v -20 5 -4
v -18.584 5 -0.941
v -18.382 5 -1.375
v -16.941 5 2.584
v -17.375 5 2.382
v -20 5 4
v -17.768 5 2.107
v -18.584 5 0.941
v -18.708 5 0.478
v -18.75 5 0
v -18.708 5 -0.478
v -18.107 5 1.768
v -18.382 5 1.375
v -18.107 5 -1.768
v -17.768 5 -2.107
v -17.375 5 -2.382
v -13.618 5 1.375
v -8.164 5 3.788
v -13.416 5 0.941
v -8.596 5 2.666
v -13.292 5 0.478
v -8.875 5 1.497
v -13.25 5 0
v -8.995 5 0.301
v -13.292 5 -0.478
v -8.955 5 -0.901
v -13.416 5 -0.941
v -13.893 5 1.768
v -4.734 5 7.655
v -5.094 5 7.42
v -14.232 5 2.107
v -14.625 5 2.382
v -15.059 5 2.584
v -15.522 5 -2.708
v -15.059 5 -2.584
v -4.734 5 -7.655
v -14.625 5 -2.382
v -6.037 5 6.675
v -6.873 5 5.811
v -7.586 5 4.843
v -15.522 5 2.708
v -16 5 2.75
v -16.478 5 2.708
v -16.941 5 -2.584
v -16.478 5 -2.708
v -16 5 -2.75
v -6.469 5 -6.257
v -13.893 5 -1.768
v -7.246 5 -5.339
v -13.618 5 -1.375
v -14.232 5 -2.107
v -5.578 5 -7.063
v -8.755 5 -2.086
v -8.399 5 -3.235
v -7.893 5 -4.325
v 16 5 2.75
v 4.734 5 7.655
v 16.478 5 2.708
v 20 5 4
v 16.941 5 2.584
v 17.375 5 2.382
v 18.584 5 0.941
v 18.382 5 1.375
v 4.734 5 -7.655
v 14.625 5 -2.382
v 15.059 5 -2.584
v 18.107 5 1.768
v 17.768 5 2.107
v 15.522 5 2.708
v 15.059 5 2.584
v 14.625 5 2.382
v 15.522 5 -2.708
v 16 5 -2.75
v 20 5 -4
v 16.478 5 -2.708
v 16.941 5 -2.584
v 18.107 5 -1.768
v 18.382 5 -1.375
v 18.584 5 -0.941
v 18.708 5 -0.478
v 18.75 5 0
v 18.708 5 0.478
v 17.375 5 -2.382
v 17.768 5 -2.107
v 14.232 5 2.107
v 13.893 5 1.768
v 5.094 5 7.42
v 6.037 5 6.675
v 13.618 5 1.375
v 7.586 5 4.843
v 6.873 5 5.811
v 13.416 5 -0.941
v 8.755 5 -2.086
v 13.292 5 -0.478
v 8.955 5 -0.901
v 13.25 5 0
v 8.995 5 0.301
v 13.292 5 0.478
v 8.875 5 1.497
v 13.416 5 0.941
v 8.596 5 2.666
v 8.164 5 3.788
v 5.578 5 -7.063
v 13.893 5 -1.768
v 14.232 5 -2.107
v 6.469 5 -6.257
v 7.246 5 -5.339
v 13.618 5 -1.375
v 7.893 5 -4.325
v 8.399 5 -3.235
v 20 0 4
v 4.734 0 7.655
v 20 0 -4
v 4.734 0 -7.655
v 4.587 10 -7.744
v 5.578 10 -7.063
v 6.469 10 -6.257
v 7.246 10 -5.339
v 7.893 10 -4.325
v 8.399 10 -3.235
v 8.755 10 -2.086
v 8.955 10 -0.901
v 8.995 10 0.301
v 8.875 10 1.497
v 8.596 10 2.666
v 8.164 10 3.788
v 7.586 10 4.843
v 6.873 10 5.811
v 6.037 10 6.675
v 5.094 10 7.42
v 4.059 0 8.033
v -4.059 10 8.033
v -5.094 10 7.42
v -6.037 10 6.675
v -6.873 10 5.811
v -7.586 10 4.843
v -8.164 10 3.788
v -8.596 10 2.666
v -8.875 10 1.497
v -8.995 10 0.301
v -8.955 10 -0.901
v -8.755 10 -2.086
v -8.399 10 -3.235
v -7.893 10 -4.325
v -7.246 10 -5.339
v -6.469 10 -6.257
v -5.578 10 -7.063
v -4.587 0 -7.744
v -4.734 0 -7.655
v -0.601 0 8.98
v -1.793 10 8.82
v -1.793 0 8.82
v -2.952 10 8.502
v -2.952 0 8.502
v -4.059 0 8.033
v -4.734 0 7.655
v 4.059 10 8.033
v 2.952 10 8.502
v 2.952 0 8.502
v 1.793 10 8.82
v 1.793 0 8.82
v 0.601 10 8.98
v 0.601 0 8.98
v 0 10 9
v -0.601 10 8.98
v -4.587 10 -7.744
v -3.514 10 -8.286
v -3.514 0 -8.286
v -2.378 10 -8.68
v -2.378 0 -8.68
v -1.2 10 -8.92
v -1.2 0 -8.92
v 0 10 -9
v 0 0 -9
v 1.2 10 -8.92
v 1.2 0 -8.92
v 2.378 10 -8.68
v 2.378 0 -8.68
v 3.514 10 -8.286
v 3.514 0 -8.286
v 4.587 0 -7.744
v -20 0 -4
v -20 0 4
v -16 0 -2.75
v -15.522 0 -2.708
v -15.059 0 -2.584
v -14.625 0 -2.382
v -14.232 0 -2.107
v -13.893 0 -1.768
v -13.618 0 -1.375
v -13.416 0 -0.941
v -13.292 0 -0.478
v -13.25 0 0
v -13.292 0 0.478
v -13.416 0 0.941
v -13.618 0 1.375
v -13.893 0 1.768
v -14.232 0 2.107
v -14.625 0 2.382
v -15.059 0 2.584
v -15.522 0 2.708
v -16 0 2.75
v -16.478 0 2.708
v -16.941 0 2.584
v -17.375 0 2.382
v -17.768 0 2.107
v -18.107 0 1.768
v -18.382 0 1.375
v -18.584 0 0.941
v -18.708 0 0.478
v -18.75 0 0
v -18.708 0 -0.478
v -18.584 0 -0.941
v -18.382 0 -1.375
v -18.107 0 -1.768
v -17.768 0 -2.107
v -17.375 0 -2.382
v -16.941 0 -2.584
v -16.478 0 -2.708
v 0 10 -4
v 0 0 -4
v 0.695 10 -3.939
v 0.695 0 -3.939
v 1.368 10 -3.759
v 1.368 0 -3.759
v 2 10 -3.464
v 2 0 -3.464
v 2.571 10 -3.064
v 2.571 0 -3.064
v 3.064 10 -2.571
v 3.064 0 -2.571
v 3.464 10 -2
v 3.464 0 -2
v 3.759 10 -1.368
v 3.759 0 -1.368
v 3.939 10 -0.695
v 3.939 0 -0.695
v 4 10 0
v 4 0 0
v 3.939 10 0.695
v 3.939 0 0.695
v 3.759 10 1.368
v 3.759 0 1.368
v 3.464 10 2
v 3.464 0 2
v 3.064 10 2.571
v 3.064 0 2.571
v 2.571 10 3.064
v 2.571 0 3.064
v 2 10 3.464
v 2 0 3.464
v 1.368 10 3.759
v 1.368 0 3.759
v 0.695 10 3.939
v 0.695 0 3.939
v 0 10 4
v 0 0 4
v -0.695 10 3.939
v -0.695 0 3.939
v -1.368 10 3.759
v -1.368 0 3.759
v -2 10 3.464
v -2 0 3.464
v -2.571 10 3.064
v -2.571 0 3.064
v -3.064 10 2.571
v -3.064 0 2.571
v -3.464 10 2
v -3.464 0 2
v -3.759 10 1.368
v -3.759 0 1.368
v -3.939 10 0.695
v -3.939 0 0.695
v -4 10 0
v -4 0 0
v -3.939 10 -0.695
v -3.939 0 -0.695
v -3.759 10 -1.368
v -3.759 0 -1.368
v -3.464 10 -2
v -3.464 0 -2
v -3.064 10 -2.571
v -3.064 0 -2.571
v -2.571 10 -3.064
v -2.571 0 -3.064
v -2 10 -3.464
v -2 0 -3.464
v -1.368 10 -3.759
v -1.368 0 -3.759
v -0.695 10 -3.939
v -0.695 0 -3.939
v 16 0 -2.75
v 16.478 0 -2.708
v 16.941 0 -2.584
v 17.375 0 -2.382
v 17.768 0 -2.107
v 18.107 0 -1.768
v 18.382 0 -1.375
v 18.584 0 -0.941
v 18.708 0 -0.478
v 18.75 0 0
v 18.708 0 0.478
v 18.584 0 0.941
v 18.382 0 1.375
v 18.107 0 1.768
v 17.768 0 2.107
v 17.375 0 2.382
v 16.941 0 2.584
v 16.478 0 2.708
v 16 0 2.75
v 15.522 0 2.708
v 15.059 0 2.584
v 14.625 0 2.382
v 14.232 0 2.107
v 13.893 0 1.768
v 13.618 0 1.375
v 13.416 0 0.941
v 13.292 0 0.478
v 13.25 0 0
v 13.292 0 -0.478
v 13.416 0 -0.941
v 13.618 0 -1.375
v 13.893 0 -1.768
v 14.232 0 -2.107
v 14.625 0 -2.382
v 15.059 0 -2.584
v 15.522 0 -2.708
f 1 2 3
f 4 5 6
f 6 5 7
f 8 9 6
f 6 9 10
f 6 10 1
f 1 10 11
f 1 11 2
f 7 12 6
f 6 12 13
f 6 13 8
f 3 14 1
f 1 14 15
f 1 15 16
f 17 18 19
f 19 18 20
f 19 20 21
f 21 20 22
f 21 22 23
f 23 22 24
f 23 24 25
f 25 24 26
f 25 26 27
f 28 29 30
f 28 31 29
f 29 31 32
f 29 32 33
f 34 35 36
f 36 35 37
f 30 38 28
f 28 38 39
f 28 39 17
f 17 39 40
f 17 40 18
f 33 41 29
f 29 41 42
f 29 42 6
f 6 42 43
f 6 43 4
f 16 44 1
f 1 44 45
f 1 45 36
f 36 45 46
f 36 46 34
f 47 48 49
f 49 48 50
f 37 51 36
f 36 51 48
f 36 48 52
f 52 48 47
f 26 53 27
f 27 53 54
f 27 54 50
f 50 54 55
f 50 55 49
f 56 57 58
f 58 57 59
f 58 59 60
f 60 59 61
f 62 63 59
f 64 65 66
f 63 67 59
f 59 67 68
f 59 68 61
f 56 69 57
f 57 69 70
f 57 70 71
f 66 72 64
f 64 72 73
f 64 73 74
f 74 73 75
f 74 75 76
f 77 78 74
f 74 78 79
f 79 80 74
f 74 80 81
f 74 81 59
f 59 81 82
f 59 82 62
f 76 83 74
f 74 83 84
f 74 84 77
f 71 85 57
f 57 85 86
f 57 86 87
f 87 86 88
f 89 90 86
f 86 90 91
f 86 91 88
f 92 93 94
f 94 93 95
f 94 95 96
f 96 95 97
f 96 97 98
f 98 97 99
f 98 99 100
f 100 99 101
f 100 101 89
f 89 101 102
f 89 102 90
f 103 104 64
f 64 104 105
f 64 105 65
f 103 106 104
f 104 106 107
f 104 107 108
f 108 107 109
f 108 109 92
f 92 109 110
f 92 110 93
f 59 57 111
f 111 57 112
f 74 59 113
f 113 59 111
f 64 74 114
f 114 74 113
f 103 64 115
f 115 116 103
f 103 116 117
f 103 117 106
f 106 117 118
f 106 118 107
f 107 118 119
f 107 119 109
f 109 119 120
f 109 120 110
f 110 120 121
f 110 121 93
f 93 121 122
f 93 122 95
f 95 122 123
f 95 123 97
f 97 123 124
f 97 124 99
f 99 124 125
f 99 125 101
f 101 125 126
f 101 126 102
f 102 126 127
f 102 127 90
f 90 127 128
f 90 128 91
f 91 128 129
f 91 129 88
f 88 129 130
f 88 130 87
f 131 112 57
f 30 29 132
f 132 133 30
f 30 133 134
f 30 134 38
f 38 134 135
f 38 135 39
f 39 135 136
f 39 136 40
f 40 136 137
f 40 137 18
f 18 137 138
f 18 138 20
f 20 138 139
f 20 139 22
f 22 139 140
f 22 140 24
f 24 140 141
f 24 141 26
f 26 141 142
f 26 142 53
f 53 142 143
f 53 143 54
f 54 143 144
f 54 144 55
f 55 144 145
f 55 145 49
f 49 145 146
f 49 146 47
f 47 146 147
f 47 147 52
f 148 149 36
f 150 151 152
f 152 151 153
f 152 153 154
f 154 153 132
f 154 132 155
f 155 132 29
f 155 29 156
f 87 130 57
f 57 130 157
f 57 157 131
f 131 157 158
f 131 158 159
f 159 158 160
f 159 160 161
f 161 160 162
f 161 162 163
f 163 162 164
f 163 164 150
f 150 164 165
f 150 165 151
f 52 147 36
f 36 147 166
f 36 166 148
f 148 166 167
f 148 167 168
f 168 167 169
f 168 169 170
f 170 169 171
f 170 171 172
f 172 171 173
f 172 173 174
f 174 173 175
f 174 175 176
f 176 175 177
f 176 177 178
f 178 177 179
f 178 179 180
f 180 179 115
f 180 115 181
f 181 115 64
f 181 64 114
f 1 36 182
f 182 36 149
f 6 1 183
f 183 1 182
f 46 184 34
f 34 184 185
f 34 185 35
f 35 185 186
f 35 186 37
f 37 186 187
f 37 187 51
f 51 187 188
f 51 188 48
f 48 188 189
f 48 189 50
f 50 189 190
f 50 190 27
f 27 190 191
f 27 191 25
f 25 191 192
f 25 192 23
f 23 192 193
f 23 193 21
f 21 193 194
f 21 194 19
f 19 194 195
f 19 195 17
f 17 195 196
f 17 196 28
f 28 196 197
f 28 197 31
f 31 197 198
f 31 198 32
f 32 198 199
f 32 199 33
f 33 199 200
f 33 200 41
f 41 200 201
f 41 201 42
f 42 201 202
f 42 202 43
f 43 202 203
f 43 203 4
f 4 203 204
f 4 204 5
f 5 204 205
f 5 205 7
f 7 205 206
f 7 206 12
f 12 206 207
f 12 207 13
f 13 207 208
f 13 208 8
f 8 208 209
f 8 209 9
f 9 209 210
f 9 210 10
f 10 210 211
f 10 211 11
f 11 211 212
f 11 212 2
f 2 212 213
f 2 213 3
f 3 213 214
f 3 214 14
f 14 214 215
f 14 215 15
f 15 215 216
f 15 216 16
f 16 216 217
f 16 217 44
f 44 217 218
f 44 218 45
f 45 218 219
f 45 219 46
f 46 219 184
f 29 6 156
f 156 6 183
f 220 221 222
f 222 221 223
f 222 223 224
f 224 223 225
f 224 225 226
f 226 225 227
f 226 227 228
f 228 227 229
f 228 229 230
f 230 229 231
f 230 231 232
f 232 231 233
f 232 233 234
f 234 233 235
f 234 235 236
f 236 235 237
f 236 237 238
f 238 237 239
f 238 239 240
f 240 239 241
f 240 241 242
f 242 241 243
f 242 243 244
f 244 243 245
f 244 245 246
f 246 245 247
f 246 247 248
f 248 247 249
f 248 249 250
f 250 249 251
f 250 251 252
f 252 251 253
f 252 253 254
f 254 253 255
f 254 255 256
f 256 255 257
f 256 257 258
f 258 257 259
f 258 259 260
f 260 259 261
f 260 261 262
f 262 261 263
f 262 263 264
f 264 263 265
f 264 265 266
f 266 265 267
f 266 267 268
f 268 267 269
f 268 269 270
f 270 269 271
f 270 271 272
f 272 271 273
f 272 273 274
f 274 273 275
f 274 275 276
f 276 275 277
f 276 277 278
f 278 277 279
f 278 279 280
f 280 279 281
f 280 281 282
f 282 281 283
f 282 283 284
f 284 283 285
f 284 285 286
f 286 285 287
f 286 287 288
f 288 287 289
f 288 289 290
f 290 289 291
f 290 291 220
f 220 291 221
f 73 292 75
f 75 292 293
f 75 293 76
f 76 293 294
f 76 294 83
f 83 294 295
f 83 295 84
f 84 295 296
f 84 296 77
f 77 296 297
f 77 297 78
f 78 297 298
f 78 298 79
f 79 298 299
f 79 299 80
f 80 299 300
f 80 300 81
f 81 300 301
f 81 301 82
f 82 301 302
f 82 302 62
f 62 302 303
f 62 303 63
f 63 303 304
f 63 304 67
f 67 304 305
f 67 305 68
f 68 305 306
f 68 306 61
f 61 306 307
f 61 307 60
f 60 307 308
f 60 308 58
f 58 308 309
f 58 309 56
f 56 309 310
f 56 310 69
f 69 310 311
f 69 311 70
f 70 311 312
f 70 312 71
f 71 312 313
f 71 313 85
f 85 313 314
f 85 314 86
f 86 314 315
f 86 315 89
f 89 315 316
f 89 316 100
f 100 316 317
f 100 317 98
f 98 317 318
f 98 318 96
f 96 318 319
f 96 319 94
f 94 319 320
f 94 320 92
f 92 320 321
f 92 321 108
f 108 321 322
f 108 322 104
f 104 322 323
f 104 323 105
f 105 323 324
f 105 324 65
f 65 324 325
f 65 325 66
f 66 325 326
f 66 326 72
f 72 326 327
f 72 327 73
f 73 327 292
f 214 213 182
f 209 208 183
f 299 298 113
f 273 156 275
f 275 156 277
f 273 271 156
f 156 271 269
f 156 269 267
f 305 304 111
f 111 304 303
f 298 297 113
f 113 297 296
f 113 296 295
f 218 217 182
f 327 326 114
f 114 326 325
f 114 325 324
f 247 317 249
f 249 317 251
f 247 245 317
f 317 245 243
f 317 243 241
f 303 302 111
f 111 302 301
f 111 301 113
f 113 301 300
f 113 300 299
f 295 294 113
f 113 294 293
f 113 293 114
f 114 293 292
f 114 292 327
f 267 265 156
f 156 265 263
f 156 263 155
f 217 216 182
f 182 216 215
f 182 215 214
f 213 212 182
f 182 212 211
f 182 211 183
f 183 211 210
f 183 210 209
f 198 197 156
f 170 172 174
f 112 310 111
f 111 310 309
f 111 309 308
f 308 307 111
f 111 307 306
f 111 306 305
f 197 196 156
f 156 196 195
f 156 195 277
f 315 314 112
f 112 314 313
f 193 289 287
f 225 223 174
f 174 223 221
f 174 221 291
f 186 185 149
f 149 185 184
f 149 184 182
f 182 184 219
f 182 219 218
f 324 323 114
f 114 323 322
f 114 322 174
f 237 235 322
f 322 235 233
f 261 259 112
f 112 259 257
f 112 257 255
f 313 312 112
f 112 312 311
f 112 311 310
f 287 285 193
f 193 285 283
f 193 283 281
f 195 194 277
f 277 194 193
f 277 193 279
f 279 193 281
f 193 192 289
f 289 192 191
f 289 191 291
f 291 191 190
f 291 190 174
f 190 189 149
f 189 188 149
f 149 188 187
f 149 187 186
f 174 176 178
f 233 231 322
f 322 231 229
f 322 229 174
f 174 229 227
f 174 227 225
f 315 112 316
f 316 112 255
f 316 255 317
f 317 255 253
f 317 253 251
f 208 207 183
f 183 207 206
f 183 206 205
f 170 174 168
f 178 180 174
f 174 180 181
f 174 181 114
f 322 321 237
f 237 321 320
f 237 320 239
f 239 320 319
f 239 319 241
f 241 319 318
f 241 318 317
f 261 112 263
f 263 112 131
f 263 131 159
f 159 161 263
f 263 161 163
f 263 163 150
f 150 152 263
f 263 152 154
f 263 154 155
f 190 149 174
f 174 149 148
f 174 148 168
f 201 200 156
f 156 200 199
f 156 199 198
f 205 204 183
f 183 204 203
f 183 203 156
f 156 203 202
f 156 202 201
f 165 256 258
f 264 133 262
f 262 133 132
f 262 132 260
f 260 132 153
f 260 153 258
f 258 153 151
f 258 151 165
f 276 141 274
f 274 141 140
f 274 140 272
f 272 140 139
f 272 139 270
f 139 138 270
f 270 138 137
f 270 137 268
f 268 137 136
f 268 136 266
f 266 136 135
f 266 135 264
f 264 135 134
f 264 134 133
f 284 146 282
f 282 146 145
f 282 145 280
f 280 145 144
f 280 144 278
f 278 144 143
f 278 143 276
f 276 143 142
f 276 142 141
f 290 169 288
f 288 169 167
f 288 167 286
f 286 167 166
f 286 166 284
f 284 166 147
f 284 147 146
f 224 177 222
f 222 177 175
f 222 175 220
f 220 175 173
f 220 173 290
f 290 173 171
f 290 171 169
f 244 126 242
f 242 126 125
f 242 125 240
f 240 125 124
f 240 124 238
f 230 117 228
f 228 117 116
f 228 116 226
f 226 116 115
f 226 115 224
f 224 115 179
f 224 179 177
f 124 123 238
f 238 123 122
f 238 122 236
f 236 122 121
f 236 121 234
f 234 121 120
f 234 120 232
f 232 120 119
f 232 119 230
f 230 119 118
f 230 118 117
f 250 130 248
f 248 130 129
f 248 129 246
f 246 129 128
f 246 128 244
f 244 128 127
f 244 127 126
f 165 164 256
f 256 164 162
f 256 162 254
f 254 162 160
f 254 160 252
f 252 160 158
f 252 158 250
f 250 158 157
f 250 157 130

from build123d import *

# Parameters (mm, degrees)
SKETCH1_R           = 2.75
SKETCH1_R_2         = 4
BOSS_EXTRUDE1_DEPTH = 5
SKETCH1_3_R         = 4
BOSS_EXTRUDE2_DEPTH = 10


with BuildPart() as part:
    # Sketch1 → Boss-Extrude1 (new body)
    with BuildSketch(Plane(origin=(0, 0, 0), x_dir=(1, 0, 0), z_dir=(0, 1, 0))):
        with BuildLine():
            Line((-4.733723721, 7.654531974), (-20, 4))
            Line((-20, 4), (-20, -4))
            Line((-20, -4), (-4.733723721, -7.654531974))
            ThreePointArc((-4.733723721, -7.654531974), (0, -9), (4.733723721, -7.654531974))
            Line((4.733723721, -7.654531974), (20, -4))
            Line((20, -4), (20, 4))
            Line((20, 4), (4.733723721, 7.654531974))
            ThreePointArc((4.733723721, 7.654531974), (0, 9), (-4.733723721, 7.654531974))
        make_face()
        with Locations((-16, 0)):
            Circle(SKETCH1_R, mode=Mode.SUBTRACT)
        Circle(SKETCH1_R_2, mode=Mode.SUBTRACT)
        with Locations((16, 0)):
            Circle(SKETCH1_R, mode=Mode.SUBTRACT)
    extrude(amount=BOSS_EXTRUDE1_DEPTH)

    # Sketch1<3> → Boss-Extrude2 (add)
    with BuildSketch(Plane(origin=(0, 0, 0), x_dir=(1, 0, 0), z_dir=(0, 1, 0))):
        with BuildLine():
            ThreePointArc((4.733723721, 7.654531974), (0, 9), (-4.733723721, 7.654531974))
            ThreePointArc((-4.733723721, 7.654531974), (-9, 0), (-4.733723721, -7.654531974))
            ThreePointArc((-4.733723721, -7.654531974), (0, -9), (4.733723721, -7.654531974))
            ThreePointArc((4.733723721, -7.654531974), (7.861409336, -4.381579996), (9, 0))
            ThreePointArc((9, 0), (7.861409336, 4.381579996), (4.733723721, 7.654531974))
        make_face()
        Circle(SKETCH1_3_R, mode=Mode.SUBTRACT)
    extrude(amount=BOSS_EXTRUDE2_DEPTH)


solid = part.part
